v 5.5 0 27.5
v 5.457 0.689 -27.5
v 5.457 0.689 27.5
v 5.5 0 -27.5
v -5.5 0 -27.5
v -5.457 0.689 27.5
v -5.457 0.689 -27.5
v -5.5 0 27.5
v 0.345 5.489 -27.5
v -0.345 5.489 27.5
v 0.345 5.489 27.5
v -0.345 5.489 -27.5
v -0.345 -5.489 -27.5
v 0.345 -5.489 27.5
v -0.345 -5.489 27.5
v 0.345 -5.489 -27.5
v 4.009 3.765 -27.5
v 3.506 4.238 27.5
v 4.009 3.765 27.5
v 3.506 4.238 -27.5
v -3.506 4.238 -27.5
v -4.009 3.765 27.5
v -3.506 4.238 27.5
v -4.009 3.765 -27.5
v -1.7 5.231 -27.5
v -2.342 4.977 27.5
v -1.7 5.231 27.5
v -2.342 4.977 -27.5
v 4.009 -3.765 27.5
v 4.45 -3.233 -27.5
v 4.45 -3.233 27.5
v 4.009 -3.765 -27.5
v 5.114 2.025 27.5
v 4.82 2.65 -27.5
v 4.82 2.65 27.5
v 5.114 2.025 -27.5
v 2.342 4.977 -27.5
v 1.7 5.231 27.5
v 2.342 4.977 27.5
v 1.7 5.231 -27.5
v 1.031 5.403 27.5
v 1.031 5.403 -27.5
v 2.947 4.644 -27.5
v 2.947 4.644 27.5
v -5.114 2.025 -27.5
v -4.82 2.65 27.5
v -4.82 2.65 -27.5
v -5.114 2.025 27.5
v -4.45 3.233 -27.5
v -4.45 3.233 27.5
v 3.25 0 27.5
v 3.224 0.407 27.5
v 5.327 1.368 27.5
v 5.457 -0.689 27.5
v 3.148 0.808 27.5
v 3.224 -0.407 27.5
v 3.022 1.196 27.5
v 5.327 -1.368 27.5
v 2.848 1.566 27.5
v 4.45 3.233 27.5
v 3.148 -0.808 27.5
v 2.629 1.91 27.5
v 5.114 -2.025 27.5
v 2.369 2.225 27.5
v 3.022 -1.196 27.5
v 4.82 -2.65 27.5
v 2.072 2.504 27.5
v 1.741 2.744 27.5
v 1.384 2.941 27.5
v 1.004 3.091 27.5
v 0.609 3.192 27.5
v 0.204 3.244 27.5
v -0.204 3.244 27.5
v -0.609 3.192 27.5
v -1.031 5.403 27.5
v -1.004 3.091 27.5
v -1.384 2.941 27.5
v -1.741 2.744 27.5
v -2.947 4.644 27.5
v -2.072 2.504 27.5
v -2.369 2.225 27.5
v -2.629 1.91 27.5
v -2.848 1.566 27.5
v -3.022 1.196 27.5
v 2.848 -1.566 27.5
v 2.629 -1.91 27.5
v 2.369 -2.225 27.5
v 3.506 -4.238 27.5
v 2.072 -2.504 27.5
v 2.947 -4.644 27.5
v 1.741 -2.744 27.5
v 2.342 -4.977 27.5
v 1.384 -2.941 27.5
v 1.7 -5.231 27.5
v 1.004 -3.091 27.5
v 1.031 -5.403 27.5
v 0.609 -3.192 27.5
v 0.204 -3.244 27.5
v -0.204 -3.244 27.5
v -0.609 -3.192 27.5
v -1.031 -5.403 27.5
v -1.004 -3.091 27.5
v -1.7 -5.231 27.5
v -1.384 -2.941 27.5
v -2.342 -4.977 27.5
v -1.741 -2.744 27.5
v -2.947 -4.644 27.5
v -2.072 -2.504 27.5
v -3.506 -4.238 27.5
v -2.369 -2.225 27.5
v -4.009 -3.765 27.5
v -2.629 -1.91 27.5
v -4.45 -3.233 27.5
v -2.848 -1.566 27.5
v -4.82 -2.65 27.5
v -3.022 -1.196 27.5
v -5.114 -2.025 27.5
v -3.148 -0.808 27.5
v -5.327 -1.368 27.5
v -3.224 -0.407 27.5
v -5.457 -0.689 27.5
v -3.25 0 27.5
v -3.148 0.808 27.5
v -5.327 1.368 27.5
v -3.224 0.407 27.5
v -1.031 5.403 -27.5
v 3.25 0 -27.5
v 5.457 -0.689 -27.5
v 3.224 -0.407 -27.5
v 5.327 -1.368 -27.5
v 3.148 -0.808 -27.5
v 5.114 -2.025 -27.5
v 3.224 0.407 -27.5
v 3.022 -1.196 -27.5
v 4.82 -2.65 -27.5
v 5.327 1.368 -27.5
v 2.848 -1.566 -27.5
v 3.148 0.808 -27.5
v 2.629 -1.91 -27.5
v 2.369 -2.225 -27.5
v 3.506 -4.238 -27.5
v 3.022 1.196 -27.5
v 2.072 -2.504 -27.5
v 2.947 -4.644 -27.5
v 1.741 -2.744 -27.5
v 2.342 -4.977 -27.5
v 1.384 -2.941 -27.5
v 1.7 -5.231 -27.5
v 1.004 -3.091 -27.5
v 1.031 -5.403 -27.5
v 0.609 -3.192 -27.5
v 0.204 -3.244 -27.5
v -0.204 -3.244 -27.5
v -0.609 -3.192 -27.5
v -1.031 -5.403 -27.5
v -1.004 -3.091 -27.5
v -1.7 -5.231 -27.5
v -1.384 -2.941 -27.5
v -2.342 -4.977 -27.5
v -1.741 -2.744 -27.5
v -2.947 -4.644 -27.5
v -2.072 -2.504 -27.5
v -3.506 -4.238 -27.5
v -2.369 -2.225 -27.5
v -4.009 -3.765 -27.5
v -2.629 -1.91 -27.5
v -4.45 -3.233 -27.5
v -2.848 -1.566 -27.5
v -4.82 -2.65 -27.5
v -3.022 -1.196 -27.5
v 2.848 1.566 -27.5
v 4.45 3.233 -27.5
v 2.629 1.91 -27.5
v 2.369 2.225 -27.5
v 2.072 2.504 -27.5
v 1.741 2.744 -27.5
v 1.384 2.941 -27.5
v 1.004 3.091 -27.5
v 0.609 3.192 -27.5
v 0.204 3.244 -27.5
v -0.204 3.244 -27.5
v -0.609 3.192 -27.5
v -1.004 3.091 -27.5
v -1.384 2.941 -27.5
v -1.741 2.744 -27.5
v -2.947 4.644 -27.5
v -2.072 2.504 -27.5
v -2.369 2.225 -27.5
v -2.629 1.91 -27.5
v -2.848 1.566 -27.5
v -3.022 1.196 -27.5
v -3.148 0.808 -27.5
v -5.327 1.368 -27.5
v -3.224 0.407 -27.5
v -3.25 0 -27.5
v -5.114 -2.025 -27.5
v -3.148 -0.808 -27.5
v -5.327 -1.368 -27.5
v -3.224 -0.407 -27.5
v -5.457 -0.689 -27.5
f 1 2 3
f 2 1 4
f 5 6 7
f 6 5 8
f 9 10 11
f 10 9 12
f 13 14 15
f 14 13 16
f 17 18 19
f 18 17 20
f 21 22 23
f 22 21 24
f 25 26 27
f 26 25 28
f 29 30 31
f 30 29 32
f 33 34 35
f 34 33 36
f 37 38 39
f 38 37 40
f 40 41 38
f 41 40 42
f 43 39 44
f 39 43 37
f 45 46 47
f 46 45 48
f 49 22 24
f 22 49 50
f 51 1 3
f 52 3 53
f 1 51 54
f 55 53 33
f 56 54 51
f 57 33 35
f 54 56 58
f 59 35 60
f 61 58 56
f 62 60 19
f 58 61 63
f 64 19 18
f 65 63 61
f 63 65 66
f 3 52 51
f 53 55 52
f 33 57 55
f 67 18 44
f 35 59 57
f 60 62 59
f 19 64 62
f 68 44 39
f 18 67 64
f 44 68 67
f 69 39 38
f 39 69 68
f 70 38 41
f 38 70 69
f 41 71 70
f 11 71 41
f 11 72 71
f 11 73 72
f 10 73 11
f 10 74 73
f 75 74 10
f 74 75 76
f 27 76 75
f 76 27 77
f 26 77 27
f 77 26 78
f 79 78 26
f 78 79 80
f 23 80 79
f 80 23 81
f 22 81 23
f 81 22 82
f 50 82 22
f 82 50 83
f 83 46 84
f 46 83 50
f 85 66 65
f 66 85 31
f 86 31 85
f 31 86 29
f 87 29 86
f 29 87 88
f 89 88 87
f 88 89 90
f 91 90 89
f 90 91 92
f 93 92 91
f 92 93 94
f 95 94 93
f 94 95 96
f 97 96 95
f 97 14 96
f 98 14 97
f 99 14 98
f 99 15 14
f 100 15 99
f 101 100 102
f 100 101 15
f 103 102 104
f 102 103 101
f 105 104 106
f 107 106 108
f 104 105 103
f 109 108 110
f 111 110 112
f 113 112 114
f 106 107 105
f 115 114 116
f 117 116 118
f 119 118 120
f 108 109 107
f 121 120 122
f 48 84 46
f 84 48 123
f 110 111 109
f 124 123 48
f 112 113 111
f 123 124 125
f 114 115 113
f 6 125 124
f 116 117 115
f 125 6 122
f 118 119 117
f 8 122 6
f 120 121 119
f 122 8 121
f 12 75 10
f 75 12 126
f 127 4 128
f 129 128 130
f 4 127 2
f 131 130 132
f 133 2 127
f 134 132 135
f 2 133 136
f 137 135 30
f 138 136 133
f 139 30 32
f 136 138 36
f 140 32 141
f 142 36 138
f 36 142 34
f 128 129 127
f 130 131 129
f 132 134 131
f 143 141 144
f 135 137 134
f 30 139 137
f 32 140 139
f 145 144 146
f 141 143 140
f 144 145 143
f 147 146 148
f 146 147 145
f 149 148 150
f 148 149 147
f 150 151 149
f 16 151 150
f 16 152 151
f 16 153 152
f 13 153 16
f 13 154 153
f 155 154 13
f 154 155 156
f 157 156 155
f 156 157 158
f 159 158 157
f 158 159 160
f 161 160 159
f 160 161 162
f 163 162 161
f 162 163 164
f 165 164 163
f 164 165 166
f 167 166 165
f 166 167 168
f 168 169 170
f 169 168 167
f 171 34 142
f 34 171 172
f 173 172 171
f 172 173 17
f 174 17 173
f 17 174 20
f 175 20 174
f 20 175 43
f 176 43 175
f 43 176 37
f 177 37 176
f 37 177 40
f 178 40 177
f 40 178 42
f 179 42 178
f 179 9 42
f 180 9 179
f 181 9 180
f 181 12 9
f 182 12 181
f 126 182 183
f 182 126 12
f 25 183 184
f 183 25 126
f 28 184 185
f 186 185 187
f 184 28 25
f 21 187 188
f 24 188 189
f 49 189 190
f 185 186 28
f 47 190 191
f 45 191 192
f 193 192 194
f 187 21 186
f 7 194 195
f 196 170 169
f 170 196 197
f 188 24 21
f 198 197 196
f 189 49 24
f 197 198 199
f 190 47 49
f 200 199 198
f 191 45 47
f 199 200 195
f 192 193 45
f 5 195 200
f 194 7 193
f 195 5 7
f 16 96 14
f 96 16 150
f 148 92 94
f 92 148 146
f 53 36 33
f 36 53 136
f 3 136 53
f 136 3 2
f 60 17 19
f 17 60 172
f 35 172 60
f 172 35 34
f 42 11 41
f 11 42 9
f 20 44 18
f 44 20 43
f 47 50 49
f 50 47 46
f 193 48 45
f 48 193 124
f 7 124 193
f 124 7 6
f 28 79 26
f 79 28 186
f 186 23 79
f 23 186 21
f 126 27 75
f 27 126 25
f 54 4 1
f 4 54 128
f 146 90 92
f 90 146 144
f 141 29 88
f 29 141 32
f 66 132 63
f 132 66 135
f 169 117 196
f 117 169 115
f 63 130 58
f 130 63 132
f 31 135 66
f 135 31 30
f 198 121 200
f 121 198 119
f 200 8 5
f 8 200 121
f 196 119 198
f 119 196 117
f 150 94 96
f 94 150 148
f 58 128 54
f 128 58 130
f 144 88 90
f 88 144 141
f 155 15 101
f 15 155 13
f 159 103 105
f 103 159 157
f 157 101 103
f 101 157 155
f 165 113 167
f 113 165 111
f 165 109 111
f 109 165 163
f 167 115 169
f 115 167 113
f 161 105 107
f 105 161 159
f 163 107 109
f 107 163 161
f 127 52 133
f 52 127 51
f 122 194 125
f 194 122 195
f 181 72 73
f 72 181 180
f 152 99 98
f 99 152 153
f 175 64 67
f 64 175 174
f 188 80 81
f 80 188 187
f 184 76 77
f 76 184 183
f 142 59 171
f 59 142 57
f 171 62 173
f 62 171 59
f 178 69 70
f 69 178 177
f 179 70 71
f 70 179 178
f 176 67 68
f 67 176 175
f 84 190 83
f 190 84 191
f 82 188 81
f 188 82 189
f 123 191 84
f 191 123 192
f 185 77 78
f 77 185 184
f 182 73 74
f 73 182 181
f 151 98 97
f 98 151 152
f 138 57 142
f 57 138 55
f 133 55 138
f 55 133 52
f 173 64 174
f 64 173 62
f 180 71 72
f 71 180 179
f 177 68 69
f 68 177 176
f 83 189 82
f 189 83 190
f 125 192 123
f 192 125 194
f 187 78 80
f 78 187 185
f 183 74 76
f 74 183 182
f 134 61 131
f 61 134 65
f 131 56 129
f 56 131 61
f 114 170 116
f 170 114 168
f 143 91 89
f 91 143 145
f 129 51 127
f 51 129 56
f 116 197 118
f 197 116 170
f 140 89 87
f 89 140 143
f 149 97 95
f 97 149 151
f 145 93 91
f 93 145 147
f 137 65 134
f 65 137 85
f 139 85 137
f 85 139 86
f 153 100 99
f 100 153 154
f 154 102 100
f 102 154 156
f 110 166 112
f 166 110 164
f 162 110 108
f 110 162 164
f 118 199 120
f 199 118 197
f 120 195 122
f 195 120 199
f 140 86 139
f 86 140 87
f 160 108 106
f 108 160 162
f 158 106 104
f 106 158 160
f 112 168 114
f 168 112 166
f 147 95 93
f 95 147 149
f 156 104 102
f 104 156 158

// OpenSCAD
$fn = 50;


difference() {
	union() {
		translate(v = [0, 0, -27.5000000000]) {
			cylinder(h = 55, r = 5.5000000000);
		}
	}
	union() {
		translate(v = [0, 0, -100.0000000000]) {
			cylinder(h = 200, r = 3.2500000000);
		}
	}
}
